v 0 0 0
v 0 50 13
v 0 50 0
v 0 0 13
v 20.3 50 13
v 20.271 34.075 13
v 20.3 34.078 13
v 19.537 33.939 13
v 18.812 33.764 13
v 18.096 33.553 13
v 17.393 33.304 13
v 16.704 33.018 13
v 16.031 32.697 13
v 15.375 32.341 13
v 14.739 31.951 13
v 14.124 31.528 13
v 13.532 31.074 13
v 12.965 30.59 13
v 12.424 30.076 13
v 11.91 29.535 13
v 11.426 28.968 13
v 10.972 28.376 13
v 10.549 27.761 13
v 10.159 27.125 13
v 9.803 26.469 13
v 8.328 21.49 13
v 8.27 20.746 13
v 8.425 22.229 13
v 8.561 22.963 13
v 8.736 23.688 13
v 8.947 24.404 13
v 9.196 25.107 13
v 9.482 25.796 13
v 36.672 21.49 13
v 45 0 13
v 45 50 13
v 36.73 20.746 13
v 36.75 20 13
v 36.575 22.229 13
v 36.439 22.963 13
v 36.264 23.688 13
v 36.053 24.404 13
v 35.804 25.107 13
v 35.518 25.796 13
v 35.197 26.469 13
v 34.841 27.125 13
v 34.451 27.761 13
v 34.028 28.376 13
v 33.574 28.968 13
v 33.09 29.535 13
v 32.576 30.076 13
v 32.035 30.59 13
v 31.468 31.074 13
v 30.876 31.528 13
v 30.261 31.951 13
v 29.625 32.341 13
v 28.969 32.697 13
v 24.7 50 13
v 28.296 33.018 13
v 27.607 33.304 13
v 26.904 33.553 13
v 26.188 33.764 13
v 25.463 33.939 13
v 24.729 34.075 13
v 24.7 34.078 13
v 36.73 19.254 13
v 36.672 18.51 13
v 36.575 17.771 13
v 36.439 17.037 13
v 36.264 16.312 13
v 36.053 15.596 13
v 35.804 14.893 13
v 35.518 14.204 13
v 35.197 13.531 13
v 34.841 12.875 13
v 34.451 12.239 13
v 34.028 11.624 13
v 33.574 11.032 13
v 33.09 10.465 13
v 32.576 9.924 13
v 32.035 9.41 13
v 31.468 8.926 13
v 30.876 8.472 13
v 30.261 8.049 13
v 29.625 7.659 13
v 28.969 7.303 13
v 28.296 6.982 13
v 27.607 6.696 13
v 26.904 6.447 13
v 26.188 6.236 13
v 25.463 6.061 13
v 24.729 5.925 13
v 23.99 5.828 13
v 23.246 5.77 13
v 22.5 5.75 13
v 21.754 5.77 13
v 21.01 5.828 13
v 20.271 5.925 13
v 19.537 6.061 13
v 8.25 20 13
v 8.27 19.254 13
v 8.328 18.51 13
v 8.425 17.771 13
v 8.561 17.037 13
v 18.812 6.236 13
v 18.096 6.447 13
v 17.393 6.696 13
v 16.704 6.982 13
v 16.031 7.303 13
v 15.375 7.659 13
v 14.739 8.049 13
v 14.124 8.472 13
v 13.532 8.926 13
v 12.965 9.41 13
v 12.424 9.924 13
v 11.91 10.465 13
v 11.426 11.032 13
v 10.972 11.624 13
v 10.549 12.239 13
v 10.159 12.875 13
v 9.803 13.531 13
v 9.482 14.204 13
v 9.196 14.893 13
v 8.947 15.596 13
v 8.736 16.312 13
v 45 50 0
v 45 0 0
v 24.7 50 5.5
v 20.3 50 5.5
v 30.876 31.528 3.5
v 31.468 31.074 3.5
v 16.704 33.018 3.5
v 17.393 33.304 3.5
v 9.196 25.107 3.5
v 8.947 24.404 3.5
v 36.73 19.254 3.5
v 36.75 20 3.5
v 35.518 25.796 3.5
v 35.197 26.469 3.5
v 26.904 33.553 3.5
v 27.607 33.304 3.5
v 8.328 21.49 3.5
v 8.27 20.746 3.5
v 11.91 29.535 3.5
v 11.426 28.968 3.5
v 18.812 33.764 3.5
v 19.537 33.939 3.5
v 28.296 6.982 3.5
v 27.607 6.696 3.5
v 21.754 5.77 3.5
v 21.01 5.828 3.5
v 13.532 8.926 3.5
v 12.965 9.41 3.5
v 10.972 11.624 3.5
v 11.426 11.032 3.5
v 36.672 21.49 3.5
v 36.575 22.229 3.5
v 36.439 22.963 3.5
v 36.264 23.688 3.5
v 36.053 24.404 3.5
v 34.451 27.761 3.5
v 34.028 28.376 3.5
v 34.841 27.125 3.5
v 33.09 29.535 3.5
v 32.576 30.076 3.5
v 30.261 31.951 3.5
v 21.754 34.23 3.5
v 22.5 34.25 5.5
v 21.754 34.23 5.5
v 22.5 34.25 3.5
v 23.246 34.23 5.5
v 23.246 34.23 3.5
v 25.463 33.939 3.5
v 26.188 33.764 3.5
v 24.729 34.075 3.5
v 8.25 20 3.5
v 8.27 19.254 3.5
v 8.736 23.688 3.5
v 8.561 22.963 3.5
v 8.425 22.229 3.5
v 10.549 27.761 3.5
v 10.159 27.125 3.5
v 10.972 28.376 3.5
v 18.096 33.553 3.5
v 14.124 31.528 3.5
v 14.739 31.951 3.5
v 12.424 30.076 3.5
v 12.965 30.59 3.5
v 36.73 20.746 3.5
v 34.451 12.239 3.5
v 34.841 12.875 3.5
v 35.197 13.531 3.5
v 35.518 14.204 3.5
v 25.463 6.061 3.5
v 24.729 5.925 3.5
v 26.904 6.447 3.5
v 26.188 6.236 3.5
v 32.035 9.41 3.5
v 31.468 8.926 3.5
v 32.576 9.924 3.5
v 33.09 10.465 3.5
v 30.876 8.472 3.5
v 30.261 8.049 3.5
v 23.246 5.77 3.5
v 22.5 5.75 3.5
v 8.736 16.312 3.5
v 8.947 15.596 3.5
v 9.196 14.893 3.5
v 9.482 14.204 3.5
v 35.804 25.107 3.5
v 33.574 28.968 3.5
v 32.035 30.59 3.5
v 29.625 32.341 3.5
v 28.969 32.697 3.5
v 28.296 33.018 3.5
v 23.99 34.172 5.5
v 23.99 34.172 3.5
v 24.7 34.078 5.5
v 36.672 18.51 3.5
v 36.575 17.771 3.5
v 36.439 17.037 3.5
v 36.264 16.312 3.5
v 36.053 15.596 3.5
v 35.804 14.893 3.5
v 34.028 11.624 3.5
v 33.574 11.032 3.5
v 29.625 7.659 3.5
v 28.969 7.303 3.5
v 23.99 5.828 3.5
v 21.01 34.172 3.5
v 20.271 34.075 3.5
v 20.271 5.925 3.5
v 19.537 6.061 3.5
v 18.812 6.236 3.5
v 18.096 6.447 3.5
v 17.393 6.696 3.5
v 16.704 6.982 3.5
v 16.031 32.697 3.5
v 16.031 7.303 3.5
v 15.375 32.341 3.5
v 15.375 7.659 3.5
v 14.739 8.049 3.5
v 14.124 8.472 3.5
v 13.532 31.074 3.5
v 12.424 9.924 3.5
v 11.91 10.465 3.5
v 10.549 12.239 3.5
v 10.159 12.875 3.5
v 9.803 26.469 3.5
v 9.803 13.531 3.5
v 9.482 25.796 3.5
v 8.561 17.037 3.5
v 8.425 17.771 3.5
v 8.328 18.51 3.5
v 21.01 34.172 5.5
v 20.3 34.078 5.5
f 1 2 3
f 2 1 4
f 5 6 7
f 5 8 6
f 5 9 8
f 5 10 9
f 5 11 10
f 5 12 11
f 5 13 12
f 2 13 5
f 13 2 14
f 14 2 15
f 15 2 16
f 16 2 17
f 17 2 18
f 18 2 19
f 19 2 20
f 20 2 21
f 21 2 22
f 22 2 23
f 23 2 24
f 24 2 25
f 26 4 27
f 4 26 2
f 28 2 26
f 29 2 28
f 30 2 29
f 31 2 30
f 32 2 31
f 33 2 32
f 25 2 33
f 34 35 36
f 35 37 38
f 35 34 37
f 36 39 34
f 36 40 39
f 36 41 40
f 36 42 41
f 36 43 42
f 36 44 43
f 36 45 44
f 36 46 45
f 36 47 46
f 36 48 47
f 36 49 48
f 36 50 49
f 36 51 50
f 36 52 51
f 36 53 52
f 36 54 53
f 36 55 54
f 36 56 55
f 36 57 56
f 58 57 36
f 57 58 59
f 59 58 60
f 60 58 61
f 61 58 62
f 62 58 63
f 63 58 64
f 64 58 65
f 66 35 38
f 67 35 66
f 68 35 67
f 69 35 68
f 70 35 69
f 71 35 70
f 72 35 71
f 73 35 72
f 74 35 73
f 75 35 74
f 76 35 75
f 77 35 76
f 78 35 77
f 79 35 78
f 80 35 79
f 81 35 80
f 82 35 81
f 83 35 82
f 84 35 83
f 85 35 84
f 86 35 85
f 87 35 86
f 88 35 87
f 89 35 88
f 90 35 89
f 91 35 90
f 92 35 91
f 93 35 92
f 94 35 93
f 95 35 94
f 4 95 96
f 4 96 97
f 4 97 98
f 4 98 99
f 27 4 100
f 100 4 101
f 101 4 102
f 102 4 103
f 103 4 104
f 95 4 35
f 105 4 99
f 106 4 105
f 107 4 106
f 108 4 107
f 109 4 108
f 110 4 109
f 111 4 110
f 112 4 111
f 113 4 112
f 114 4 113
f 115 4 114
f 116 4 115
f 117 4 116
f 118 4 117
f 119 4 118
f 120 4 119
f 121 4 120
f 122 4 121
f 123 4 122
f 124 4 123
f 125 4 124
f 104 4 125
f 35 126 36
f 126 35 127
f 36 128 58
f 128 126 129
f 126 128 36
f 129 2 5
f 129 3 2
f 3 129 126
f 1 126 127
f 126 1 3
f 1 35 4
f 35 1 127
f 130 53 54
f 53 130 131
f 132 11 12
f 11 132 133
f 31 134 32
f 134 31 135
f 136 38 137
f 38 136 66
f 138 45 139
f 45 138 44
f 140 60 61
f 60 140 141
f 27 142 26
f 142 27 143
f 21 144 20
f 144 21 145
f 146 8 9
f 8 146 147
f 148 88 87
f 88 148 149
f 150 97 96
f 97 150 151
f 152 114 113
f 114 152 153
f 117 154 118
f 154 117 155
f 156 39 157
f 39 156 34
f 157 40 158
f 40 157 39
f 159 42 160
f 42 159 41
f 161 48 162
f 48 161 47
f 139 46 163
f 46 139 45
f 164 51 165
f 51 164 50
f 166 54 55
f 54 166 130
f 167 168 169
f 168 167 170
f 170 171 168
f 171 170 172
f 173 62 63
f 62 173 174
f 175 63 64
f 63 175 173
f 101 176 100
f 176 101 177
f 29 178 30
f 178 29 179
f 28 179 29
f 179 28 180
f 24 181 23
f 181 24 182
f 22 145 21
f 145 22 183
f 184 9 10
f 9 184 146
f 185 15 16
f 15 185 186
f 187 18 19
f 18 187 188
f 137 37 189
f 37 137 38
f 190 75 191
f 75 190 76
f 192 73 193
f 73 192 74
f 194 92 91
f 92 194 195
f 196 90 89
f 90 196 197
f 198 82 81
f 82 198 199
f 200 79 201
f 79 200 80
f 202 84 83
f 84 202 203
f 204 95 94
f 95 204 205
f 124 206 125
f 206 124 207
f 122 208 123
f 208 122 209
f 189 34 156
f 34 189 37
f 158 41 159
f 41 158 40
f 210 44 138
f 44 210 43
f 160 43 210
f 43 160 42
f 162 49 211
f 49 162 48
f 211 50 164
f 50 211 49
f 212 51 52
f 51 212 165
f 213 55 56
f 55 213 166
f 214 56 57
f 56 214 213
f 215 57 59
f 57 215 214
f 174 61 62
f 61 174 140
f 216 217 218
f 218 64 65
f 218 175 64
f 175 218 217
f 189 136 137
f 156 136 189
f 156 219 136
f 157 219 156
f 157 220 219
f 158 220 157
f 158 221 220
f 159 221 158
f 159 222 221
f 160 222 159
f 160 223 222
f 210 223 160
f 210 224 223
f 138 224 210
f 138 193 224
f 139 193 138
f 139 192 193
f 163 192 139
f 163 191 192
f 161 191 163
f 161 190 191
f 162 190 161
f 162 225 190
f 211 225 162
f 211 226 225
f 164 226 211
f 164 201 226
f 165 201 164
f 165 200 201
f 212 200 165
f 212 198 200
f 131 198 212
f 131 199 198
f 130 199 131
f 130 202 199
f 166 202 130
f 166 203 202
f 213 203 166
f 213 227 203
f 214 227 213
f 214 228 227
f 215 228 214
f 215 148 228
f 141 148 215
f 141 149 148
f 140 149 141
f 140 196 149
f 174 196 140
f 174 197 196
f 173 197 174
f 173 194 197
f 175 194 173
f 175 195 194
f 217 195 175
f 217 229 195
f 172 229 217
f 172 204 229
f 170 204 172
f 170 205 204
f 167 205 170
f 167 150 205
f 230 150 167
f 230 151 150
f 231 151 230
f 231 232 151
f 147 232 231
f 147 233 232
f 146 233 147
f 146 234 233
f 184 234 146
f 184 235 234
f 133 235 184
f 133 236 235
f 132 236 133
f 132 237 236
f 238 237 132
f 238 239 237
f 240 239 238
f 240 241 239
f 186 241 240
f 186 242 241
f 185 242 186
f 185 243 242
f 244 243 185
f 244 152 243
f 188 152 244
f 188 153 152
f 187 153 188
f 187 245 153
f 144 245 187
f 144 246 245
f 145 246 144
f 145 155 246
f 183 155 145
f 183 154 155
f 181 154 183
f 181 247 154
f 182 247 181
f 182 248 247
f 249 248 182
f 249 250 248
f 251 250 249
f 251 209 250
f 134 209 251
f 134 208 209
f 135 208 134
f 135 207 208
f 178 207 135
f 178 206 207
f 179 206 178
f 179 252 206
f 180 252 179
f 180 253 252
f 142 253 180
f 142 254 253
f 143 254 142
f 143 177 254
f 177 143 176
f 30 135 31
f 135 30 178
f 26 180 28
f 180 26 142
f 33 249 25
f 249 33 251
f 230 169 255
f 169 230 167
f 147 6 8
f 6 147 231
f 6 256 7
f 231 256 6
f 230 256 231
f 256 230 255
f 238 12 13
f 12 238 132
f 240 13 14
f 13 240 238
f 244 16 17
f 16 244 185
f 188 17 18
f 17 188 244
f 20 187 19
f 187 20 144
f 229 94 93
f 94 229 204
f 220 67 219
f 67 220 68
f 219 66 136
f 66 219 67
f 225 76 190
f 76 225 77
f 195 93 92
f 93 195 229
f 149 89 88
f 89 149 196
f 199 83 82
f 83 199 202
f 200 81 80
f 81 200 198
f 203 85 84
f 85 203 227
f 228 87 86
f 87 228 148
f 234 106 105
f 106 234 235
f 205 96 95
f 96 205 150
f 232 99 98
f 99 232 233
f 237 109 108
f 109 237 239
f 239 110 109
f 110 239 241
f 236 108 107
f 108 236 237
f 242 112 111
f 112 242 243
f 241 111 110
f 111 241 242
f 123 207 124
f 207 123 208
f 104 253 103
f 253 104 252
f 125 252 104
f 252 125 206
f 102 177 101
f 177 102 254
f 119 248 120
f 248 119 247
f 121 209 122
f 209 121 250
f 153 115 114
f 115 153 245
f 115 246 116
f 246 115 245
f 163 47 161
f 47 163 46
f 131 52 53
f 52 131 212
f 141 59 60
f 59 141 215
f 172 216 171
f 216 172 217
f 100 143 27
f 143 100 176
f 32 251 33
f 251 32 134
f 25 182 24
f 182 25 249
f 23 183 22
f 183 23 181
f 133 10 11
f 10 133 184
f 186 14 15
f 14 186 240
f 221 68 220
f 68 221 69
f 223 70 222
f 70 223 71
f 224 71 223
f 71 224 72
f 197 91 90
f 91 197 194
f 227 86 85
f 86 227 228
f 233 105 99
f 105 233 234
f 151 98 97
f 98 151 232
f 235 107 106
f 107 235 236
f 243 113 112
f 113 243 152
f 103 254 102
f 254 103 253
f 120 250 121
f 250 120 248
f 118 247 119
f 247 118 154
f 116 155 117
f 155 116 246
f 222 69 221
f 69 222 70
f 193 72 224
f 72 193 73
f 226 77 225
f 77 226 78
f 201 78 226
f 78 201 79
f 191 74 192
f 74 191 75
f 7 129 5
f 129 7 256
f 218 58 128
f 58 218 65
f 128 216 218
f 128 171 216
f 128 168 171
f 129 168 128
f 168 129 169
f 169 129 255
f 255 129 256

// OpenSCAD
$fn=120;

cubeh=13;
cubew=45;
cubel=50;
wirew=4.4;
difference(){
    cube([cubew,cubel,cubeh]);
    translate([cubew/2,20,cubeh-9.5]) cylinder(h=9.5,d=28.5);
    translate([cubew/2-wirew/2,20,cubeh-7.5]) cube([wirew, 60, 7.5]);
}
